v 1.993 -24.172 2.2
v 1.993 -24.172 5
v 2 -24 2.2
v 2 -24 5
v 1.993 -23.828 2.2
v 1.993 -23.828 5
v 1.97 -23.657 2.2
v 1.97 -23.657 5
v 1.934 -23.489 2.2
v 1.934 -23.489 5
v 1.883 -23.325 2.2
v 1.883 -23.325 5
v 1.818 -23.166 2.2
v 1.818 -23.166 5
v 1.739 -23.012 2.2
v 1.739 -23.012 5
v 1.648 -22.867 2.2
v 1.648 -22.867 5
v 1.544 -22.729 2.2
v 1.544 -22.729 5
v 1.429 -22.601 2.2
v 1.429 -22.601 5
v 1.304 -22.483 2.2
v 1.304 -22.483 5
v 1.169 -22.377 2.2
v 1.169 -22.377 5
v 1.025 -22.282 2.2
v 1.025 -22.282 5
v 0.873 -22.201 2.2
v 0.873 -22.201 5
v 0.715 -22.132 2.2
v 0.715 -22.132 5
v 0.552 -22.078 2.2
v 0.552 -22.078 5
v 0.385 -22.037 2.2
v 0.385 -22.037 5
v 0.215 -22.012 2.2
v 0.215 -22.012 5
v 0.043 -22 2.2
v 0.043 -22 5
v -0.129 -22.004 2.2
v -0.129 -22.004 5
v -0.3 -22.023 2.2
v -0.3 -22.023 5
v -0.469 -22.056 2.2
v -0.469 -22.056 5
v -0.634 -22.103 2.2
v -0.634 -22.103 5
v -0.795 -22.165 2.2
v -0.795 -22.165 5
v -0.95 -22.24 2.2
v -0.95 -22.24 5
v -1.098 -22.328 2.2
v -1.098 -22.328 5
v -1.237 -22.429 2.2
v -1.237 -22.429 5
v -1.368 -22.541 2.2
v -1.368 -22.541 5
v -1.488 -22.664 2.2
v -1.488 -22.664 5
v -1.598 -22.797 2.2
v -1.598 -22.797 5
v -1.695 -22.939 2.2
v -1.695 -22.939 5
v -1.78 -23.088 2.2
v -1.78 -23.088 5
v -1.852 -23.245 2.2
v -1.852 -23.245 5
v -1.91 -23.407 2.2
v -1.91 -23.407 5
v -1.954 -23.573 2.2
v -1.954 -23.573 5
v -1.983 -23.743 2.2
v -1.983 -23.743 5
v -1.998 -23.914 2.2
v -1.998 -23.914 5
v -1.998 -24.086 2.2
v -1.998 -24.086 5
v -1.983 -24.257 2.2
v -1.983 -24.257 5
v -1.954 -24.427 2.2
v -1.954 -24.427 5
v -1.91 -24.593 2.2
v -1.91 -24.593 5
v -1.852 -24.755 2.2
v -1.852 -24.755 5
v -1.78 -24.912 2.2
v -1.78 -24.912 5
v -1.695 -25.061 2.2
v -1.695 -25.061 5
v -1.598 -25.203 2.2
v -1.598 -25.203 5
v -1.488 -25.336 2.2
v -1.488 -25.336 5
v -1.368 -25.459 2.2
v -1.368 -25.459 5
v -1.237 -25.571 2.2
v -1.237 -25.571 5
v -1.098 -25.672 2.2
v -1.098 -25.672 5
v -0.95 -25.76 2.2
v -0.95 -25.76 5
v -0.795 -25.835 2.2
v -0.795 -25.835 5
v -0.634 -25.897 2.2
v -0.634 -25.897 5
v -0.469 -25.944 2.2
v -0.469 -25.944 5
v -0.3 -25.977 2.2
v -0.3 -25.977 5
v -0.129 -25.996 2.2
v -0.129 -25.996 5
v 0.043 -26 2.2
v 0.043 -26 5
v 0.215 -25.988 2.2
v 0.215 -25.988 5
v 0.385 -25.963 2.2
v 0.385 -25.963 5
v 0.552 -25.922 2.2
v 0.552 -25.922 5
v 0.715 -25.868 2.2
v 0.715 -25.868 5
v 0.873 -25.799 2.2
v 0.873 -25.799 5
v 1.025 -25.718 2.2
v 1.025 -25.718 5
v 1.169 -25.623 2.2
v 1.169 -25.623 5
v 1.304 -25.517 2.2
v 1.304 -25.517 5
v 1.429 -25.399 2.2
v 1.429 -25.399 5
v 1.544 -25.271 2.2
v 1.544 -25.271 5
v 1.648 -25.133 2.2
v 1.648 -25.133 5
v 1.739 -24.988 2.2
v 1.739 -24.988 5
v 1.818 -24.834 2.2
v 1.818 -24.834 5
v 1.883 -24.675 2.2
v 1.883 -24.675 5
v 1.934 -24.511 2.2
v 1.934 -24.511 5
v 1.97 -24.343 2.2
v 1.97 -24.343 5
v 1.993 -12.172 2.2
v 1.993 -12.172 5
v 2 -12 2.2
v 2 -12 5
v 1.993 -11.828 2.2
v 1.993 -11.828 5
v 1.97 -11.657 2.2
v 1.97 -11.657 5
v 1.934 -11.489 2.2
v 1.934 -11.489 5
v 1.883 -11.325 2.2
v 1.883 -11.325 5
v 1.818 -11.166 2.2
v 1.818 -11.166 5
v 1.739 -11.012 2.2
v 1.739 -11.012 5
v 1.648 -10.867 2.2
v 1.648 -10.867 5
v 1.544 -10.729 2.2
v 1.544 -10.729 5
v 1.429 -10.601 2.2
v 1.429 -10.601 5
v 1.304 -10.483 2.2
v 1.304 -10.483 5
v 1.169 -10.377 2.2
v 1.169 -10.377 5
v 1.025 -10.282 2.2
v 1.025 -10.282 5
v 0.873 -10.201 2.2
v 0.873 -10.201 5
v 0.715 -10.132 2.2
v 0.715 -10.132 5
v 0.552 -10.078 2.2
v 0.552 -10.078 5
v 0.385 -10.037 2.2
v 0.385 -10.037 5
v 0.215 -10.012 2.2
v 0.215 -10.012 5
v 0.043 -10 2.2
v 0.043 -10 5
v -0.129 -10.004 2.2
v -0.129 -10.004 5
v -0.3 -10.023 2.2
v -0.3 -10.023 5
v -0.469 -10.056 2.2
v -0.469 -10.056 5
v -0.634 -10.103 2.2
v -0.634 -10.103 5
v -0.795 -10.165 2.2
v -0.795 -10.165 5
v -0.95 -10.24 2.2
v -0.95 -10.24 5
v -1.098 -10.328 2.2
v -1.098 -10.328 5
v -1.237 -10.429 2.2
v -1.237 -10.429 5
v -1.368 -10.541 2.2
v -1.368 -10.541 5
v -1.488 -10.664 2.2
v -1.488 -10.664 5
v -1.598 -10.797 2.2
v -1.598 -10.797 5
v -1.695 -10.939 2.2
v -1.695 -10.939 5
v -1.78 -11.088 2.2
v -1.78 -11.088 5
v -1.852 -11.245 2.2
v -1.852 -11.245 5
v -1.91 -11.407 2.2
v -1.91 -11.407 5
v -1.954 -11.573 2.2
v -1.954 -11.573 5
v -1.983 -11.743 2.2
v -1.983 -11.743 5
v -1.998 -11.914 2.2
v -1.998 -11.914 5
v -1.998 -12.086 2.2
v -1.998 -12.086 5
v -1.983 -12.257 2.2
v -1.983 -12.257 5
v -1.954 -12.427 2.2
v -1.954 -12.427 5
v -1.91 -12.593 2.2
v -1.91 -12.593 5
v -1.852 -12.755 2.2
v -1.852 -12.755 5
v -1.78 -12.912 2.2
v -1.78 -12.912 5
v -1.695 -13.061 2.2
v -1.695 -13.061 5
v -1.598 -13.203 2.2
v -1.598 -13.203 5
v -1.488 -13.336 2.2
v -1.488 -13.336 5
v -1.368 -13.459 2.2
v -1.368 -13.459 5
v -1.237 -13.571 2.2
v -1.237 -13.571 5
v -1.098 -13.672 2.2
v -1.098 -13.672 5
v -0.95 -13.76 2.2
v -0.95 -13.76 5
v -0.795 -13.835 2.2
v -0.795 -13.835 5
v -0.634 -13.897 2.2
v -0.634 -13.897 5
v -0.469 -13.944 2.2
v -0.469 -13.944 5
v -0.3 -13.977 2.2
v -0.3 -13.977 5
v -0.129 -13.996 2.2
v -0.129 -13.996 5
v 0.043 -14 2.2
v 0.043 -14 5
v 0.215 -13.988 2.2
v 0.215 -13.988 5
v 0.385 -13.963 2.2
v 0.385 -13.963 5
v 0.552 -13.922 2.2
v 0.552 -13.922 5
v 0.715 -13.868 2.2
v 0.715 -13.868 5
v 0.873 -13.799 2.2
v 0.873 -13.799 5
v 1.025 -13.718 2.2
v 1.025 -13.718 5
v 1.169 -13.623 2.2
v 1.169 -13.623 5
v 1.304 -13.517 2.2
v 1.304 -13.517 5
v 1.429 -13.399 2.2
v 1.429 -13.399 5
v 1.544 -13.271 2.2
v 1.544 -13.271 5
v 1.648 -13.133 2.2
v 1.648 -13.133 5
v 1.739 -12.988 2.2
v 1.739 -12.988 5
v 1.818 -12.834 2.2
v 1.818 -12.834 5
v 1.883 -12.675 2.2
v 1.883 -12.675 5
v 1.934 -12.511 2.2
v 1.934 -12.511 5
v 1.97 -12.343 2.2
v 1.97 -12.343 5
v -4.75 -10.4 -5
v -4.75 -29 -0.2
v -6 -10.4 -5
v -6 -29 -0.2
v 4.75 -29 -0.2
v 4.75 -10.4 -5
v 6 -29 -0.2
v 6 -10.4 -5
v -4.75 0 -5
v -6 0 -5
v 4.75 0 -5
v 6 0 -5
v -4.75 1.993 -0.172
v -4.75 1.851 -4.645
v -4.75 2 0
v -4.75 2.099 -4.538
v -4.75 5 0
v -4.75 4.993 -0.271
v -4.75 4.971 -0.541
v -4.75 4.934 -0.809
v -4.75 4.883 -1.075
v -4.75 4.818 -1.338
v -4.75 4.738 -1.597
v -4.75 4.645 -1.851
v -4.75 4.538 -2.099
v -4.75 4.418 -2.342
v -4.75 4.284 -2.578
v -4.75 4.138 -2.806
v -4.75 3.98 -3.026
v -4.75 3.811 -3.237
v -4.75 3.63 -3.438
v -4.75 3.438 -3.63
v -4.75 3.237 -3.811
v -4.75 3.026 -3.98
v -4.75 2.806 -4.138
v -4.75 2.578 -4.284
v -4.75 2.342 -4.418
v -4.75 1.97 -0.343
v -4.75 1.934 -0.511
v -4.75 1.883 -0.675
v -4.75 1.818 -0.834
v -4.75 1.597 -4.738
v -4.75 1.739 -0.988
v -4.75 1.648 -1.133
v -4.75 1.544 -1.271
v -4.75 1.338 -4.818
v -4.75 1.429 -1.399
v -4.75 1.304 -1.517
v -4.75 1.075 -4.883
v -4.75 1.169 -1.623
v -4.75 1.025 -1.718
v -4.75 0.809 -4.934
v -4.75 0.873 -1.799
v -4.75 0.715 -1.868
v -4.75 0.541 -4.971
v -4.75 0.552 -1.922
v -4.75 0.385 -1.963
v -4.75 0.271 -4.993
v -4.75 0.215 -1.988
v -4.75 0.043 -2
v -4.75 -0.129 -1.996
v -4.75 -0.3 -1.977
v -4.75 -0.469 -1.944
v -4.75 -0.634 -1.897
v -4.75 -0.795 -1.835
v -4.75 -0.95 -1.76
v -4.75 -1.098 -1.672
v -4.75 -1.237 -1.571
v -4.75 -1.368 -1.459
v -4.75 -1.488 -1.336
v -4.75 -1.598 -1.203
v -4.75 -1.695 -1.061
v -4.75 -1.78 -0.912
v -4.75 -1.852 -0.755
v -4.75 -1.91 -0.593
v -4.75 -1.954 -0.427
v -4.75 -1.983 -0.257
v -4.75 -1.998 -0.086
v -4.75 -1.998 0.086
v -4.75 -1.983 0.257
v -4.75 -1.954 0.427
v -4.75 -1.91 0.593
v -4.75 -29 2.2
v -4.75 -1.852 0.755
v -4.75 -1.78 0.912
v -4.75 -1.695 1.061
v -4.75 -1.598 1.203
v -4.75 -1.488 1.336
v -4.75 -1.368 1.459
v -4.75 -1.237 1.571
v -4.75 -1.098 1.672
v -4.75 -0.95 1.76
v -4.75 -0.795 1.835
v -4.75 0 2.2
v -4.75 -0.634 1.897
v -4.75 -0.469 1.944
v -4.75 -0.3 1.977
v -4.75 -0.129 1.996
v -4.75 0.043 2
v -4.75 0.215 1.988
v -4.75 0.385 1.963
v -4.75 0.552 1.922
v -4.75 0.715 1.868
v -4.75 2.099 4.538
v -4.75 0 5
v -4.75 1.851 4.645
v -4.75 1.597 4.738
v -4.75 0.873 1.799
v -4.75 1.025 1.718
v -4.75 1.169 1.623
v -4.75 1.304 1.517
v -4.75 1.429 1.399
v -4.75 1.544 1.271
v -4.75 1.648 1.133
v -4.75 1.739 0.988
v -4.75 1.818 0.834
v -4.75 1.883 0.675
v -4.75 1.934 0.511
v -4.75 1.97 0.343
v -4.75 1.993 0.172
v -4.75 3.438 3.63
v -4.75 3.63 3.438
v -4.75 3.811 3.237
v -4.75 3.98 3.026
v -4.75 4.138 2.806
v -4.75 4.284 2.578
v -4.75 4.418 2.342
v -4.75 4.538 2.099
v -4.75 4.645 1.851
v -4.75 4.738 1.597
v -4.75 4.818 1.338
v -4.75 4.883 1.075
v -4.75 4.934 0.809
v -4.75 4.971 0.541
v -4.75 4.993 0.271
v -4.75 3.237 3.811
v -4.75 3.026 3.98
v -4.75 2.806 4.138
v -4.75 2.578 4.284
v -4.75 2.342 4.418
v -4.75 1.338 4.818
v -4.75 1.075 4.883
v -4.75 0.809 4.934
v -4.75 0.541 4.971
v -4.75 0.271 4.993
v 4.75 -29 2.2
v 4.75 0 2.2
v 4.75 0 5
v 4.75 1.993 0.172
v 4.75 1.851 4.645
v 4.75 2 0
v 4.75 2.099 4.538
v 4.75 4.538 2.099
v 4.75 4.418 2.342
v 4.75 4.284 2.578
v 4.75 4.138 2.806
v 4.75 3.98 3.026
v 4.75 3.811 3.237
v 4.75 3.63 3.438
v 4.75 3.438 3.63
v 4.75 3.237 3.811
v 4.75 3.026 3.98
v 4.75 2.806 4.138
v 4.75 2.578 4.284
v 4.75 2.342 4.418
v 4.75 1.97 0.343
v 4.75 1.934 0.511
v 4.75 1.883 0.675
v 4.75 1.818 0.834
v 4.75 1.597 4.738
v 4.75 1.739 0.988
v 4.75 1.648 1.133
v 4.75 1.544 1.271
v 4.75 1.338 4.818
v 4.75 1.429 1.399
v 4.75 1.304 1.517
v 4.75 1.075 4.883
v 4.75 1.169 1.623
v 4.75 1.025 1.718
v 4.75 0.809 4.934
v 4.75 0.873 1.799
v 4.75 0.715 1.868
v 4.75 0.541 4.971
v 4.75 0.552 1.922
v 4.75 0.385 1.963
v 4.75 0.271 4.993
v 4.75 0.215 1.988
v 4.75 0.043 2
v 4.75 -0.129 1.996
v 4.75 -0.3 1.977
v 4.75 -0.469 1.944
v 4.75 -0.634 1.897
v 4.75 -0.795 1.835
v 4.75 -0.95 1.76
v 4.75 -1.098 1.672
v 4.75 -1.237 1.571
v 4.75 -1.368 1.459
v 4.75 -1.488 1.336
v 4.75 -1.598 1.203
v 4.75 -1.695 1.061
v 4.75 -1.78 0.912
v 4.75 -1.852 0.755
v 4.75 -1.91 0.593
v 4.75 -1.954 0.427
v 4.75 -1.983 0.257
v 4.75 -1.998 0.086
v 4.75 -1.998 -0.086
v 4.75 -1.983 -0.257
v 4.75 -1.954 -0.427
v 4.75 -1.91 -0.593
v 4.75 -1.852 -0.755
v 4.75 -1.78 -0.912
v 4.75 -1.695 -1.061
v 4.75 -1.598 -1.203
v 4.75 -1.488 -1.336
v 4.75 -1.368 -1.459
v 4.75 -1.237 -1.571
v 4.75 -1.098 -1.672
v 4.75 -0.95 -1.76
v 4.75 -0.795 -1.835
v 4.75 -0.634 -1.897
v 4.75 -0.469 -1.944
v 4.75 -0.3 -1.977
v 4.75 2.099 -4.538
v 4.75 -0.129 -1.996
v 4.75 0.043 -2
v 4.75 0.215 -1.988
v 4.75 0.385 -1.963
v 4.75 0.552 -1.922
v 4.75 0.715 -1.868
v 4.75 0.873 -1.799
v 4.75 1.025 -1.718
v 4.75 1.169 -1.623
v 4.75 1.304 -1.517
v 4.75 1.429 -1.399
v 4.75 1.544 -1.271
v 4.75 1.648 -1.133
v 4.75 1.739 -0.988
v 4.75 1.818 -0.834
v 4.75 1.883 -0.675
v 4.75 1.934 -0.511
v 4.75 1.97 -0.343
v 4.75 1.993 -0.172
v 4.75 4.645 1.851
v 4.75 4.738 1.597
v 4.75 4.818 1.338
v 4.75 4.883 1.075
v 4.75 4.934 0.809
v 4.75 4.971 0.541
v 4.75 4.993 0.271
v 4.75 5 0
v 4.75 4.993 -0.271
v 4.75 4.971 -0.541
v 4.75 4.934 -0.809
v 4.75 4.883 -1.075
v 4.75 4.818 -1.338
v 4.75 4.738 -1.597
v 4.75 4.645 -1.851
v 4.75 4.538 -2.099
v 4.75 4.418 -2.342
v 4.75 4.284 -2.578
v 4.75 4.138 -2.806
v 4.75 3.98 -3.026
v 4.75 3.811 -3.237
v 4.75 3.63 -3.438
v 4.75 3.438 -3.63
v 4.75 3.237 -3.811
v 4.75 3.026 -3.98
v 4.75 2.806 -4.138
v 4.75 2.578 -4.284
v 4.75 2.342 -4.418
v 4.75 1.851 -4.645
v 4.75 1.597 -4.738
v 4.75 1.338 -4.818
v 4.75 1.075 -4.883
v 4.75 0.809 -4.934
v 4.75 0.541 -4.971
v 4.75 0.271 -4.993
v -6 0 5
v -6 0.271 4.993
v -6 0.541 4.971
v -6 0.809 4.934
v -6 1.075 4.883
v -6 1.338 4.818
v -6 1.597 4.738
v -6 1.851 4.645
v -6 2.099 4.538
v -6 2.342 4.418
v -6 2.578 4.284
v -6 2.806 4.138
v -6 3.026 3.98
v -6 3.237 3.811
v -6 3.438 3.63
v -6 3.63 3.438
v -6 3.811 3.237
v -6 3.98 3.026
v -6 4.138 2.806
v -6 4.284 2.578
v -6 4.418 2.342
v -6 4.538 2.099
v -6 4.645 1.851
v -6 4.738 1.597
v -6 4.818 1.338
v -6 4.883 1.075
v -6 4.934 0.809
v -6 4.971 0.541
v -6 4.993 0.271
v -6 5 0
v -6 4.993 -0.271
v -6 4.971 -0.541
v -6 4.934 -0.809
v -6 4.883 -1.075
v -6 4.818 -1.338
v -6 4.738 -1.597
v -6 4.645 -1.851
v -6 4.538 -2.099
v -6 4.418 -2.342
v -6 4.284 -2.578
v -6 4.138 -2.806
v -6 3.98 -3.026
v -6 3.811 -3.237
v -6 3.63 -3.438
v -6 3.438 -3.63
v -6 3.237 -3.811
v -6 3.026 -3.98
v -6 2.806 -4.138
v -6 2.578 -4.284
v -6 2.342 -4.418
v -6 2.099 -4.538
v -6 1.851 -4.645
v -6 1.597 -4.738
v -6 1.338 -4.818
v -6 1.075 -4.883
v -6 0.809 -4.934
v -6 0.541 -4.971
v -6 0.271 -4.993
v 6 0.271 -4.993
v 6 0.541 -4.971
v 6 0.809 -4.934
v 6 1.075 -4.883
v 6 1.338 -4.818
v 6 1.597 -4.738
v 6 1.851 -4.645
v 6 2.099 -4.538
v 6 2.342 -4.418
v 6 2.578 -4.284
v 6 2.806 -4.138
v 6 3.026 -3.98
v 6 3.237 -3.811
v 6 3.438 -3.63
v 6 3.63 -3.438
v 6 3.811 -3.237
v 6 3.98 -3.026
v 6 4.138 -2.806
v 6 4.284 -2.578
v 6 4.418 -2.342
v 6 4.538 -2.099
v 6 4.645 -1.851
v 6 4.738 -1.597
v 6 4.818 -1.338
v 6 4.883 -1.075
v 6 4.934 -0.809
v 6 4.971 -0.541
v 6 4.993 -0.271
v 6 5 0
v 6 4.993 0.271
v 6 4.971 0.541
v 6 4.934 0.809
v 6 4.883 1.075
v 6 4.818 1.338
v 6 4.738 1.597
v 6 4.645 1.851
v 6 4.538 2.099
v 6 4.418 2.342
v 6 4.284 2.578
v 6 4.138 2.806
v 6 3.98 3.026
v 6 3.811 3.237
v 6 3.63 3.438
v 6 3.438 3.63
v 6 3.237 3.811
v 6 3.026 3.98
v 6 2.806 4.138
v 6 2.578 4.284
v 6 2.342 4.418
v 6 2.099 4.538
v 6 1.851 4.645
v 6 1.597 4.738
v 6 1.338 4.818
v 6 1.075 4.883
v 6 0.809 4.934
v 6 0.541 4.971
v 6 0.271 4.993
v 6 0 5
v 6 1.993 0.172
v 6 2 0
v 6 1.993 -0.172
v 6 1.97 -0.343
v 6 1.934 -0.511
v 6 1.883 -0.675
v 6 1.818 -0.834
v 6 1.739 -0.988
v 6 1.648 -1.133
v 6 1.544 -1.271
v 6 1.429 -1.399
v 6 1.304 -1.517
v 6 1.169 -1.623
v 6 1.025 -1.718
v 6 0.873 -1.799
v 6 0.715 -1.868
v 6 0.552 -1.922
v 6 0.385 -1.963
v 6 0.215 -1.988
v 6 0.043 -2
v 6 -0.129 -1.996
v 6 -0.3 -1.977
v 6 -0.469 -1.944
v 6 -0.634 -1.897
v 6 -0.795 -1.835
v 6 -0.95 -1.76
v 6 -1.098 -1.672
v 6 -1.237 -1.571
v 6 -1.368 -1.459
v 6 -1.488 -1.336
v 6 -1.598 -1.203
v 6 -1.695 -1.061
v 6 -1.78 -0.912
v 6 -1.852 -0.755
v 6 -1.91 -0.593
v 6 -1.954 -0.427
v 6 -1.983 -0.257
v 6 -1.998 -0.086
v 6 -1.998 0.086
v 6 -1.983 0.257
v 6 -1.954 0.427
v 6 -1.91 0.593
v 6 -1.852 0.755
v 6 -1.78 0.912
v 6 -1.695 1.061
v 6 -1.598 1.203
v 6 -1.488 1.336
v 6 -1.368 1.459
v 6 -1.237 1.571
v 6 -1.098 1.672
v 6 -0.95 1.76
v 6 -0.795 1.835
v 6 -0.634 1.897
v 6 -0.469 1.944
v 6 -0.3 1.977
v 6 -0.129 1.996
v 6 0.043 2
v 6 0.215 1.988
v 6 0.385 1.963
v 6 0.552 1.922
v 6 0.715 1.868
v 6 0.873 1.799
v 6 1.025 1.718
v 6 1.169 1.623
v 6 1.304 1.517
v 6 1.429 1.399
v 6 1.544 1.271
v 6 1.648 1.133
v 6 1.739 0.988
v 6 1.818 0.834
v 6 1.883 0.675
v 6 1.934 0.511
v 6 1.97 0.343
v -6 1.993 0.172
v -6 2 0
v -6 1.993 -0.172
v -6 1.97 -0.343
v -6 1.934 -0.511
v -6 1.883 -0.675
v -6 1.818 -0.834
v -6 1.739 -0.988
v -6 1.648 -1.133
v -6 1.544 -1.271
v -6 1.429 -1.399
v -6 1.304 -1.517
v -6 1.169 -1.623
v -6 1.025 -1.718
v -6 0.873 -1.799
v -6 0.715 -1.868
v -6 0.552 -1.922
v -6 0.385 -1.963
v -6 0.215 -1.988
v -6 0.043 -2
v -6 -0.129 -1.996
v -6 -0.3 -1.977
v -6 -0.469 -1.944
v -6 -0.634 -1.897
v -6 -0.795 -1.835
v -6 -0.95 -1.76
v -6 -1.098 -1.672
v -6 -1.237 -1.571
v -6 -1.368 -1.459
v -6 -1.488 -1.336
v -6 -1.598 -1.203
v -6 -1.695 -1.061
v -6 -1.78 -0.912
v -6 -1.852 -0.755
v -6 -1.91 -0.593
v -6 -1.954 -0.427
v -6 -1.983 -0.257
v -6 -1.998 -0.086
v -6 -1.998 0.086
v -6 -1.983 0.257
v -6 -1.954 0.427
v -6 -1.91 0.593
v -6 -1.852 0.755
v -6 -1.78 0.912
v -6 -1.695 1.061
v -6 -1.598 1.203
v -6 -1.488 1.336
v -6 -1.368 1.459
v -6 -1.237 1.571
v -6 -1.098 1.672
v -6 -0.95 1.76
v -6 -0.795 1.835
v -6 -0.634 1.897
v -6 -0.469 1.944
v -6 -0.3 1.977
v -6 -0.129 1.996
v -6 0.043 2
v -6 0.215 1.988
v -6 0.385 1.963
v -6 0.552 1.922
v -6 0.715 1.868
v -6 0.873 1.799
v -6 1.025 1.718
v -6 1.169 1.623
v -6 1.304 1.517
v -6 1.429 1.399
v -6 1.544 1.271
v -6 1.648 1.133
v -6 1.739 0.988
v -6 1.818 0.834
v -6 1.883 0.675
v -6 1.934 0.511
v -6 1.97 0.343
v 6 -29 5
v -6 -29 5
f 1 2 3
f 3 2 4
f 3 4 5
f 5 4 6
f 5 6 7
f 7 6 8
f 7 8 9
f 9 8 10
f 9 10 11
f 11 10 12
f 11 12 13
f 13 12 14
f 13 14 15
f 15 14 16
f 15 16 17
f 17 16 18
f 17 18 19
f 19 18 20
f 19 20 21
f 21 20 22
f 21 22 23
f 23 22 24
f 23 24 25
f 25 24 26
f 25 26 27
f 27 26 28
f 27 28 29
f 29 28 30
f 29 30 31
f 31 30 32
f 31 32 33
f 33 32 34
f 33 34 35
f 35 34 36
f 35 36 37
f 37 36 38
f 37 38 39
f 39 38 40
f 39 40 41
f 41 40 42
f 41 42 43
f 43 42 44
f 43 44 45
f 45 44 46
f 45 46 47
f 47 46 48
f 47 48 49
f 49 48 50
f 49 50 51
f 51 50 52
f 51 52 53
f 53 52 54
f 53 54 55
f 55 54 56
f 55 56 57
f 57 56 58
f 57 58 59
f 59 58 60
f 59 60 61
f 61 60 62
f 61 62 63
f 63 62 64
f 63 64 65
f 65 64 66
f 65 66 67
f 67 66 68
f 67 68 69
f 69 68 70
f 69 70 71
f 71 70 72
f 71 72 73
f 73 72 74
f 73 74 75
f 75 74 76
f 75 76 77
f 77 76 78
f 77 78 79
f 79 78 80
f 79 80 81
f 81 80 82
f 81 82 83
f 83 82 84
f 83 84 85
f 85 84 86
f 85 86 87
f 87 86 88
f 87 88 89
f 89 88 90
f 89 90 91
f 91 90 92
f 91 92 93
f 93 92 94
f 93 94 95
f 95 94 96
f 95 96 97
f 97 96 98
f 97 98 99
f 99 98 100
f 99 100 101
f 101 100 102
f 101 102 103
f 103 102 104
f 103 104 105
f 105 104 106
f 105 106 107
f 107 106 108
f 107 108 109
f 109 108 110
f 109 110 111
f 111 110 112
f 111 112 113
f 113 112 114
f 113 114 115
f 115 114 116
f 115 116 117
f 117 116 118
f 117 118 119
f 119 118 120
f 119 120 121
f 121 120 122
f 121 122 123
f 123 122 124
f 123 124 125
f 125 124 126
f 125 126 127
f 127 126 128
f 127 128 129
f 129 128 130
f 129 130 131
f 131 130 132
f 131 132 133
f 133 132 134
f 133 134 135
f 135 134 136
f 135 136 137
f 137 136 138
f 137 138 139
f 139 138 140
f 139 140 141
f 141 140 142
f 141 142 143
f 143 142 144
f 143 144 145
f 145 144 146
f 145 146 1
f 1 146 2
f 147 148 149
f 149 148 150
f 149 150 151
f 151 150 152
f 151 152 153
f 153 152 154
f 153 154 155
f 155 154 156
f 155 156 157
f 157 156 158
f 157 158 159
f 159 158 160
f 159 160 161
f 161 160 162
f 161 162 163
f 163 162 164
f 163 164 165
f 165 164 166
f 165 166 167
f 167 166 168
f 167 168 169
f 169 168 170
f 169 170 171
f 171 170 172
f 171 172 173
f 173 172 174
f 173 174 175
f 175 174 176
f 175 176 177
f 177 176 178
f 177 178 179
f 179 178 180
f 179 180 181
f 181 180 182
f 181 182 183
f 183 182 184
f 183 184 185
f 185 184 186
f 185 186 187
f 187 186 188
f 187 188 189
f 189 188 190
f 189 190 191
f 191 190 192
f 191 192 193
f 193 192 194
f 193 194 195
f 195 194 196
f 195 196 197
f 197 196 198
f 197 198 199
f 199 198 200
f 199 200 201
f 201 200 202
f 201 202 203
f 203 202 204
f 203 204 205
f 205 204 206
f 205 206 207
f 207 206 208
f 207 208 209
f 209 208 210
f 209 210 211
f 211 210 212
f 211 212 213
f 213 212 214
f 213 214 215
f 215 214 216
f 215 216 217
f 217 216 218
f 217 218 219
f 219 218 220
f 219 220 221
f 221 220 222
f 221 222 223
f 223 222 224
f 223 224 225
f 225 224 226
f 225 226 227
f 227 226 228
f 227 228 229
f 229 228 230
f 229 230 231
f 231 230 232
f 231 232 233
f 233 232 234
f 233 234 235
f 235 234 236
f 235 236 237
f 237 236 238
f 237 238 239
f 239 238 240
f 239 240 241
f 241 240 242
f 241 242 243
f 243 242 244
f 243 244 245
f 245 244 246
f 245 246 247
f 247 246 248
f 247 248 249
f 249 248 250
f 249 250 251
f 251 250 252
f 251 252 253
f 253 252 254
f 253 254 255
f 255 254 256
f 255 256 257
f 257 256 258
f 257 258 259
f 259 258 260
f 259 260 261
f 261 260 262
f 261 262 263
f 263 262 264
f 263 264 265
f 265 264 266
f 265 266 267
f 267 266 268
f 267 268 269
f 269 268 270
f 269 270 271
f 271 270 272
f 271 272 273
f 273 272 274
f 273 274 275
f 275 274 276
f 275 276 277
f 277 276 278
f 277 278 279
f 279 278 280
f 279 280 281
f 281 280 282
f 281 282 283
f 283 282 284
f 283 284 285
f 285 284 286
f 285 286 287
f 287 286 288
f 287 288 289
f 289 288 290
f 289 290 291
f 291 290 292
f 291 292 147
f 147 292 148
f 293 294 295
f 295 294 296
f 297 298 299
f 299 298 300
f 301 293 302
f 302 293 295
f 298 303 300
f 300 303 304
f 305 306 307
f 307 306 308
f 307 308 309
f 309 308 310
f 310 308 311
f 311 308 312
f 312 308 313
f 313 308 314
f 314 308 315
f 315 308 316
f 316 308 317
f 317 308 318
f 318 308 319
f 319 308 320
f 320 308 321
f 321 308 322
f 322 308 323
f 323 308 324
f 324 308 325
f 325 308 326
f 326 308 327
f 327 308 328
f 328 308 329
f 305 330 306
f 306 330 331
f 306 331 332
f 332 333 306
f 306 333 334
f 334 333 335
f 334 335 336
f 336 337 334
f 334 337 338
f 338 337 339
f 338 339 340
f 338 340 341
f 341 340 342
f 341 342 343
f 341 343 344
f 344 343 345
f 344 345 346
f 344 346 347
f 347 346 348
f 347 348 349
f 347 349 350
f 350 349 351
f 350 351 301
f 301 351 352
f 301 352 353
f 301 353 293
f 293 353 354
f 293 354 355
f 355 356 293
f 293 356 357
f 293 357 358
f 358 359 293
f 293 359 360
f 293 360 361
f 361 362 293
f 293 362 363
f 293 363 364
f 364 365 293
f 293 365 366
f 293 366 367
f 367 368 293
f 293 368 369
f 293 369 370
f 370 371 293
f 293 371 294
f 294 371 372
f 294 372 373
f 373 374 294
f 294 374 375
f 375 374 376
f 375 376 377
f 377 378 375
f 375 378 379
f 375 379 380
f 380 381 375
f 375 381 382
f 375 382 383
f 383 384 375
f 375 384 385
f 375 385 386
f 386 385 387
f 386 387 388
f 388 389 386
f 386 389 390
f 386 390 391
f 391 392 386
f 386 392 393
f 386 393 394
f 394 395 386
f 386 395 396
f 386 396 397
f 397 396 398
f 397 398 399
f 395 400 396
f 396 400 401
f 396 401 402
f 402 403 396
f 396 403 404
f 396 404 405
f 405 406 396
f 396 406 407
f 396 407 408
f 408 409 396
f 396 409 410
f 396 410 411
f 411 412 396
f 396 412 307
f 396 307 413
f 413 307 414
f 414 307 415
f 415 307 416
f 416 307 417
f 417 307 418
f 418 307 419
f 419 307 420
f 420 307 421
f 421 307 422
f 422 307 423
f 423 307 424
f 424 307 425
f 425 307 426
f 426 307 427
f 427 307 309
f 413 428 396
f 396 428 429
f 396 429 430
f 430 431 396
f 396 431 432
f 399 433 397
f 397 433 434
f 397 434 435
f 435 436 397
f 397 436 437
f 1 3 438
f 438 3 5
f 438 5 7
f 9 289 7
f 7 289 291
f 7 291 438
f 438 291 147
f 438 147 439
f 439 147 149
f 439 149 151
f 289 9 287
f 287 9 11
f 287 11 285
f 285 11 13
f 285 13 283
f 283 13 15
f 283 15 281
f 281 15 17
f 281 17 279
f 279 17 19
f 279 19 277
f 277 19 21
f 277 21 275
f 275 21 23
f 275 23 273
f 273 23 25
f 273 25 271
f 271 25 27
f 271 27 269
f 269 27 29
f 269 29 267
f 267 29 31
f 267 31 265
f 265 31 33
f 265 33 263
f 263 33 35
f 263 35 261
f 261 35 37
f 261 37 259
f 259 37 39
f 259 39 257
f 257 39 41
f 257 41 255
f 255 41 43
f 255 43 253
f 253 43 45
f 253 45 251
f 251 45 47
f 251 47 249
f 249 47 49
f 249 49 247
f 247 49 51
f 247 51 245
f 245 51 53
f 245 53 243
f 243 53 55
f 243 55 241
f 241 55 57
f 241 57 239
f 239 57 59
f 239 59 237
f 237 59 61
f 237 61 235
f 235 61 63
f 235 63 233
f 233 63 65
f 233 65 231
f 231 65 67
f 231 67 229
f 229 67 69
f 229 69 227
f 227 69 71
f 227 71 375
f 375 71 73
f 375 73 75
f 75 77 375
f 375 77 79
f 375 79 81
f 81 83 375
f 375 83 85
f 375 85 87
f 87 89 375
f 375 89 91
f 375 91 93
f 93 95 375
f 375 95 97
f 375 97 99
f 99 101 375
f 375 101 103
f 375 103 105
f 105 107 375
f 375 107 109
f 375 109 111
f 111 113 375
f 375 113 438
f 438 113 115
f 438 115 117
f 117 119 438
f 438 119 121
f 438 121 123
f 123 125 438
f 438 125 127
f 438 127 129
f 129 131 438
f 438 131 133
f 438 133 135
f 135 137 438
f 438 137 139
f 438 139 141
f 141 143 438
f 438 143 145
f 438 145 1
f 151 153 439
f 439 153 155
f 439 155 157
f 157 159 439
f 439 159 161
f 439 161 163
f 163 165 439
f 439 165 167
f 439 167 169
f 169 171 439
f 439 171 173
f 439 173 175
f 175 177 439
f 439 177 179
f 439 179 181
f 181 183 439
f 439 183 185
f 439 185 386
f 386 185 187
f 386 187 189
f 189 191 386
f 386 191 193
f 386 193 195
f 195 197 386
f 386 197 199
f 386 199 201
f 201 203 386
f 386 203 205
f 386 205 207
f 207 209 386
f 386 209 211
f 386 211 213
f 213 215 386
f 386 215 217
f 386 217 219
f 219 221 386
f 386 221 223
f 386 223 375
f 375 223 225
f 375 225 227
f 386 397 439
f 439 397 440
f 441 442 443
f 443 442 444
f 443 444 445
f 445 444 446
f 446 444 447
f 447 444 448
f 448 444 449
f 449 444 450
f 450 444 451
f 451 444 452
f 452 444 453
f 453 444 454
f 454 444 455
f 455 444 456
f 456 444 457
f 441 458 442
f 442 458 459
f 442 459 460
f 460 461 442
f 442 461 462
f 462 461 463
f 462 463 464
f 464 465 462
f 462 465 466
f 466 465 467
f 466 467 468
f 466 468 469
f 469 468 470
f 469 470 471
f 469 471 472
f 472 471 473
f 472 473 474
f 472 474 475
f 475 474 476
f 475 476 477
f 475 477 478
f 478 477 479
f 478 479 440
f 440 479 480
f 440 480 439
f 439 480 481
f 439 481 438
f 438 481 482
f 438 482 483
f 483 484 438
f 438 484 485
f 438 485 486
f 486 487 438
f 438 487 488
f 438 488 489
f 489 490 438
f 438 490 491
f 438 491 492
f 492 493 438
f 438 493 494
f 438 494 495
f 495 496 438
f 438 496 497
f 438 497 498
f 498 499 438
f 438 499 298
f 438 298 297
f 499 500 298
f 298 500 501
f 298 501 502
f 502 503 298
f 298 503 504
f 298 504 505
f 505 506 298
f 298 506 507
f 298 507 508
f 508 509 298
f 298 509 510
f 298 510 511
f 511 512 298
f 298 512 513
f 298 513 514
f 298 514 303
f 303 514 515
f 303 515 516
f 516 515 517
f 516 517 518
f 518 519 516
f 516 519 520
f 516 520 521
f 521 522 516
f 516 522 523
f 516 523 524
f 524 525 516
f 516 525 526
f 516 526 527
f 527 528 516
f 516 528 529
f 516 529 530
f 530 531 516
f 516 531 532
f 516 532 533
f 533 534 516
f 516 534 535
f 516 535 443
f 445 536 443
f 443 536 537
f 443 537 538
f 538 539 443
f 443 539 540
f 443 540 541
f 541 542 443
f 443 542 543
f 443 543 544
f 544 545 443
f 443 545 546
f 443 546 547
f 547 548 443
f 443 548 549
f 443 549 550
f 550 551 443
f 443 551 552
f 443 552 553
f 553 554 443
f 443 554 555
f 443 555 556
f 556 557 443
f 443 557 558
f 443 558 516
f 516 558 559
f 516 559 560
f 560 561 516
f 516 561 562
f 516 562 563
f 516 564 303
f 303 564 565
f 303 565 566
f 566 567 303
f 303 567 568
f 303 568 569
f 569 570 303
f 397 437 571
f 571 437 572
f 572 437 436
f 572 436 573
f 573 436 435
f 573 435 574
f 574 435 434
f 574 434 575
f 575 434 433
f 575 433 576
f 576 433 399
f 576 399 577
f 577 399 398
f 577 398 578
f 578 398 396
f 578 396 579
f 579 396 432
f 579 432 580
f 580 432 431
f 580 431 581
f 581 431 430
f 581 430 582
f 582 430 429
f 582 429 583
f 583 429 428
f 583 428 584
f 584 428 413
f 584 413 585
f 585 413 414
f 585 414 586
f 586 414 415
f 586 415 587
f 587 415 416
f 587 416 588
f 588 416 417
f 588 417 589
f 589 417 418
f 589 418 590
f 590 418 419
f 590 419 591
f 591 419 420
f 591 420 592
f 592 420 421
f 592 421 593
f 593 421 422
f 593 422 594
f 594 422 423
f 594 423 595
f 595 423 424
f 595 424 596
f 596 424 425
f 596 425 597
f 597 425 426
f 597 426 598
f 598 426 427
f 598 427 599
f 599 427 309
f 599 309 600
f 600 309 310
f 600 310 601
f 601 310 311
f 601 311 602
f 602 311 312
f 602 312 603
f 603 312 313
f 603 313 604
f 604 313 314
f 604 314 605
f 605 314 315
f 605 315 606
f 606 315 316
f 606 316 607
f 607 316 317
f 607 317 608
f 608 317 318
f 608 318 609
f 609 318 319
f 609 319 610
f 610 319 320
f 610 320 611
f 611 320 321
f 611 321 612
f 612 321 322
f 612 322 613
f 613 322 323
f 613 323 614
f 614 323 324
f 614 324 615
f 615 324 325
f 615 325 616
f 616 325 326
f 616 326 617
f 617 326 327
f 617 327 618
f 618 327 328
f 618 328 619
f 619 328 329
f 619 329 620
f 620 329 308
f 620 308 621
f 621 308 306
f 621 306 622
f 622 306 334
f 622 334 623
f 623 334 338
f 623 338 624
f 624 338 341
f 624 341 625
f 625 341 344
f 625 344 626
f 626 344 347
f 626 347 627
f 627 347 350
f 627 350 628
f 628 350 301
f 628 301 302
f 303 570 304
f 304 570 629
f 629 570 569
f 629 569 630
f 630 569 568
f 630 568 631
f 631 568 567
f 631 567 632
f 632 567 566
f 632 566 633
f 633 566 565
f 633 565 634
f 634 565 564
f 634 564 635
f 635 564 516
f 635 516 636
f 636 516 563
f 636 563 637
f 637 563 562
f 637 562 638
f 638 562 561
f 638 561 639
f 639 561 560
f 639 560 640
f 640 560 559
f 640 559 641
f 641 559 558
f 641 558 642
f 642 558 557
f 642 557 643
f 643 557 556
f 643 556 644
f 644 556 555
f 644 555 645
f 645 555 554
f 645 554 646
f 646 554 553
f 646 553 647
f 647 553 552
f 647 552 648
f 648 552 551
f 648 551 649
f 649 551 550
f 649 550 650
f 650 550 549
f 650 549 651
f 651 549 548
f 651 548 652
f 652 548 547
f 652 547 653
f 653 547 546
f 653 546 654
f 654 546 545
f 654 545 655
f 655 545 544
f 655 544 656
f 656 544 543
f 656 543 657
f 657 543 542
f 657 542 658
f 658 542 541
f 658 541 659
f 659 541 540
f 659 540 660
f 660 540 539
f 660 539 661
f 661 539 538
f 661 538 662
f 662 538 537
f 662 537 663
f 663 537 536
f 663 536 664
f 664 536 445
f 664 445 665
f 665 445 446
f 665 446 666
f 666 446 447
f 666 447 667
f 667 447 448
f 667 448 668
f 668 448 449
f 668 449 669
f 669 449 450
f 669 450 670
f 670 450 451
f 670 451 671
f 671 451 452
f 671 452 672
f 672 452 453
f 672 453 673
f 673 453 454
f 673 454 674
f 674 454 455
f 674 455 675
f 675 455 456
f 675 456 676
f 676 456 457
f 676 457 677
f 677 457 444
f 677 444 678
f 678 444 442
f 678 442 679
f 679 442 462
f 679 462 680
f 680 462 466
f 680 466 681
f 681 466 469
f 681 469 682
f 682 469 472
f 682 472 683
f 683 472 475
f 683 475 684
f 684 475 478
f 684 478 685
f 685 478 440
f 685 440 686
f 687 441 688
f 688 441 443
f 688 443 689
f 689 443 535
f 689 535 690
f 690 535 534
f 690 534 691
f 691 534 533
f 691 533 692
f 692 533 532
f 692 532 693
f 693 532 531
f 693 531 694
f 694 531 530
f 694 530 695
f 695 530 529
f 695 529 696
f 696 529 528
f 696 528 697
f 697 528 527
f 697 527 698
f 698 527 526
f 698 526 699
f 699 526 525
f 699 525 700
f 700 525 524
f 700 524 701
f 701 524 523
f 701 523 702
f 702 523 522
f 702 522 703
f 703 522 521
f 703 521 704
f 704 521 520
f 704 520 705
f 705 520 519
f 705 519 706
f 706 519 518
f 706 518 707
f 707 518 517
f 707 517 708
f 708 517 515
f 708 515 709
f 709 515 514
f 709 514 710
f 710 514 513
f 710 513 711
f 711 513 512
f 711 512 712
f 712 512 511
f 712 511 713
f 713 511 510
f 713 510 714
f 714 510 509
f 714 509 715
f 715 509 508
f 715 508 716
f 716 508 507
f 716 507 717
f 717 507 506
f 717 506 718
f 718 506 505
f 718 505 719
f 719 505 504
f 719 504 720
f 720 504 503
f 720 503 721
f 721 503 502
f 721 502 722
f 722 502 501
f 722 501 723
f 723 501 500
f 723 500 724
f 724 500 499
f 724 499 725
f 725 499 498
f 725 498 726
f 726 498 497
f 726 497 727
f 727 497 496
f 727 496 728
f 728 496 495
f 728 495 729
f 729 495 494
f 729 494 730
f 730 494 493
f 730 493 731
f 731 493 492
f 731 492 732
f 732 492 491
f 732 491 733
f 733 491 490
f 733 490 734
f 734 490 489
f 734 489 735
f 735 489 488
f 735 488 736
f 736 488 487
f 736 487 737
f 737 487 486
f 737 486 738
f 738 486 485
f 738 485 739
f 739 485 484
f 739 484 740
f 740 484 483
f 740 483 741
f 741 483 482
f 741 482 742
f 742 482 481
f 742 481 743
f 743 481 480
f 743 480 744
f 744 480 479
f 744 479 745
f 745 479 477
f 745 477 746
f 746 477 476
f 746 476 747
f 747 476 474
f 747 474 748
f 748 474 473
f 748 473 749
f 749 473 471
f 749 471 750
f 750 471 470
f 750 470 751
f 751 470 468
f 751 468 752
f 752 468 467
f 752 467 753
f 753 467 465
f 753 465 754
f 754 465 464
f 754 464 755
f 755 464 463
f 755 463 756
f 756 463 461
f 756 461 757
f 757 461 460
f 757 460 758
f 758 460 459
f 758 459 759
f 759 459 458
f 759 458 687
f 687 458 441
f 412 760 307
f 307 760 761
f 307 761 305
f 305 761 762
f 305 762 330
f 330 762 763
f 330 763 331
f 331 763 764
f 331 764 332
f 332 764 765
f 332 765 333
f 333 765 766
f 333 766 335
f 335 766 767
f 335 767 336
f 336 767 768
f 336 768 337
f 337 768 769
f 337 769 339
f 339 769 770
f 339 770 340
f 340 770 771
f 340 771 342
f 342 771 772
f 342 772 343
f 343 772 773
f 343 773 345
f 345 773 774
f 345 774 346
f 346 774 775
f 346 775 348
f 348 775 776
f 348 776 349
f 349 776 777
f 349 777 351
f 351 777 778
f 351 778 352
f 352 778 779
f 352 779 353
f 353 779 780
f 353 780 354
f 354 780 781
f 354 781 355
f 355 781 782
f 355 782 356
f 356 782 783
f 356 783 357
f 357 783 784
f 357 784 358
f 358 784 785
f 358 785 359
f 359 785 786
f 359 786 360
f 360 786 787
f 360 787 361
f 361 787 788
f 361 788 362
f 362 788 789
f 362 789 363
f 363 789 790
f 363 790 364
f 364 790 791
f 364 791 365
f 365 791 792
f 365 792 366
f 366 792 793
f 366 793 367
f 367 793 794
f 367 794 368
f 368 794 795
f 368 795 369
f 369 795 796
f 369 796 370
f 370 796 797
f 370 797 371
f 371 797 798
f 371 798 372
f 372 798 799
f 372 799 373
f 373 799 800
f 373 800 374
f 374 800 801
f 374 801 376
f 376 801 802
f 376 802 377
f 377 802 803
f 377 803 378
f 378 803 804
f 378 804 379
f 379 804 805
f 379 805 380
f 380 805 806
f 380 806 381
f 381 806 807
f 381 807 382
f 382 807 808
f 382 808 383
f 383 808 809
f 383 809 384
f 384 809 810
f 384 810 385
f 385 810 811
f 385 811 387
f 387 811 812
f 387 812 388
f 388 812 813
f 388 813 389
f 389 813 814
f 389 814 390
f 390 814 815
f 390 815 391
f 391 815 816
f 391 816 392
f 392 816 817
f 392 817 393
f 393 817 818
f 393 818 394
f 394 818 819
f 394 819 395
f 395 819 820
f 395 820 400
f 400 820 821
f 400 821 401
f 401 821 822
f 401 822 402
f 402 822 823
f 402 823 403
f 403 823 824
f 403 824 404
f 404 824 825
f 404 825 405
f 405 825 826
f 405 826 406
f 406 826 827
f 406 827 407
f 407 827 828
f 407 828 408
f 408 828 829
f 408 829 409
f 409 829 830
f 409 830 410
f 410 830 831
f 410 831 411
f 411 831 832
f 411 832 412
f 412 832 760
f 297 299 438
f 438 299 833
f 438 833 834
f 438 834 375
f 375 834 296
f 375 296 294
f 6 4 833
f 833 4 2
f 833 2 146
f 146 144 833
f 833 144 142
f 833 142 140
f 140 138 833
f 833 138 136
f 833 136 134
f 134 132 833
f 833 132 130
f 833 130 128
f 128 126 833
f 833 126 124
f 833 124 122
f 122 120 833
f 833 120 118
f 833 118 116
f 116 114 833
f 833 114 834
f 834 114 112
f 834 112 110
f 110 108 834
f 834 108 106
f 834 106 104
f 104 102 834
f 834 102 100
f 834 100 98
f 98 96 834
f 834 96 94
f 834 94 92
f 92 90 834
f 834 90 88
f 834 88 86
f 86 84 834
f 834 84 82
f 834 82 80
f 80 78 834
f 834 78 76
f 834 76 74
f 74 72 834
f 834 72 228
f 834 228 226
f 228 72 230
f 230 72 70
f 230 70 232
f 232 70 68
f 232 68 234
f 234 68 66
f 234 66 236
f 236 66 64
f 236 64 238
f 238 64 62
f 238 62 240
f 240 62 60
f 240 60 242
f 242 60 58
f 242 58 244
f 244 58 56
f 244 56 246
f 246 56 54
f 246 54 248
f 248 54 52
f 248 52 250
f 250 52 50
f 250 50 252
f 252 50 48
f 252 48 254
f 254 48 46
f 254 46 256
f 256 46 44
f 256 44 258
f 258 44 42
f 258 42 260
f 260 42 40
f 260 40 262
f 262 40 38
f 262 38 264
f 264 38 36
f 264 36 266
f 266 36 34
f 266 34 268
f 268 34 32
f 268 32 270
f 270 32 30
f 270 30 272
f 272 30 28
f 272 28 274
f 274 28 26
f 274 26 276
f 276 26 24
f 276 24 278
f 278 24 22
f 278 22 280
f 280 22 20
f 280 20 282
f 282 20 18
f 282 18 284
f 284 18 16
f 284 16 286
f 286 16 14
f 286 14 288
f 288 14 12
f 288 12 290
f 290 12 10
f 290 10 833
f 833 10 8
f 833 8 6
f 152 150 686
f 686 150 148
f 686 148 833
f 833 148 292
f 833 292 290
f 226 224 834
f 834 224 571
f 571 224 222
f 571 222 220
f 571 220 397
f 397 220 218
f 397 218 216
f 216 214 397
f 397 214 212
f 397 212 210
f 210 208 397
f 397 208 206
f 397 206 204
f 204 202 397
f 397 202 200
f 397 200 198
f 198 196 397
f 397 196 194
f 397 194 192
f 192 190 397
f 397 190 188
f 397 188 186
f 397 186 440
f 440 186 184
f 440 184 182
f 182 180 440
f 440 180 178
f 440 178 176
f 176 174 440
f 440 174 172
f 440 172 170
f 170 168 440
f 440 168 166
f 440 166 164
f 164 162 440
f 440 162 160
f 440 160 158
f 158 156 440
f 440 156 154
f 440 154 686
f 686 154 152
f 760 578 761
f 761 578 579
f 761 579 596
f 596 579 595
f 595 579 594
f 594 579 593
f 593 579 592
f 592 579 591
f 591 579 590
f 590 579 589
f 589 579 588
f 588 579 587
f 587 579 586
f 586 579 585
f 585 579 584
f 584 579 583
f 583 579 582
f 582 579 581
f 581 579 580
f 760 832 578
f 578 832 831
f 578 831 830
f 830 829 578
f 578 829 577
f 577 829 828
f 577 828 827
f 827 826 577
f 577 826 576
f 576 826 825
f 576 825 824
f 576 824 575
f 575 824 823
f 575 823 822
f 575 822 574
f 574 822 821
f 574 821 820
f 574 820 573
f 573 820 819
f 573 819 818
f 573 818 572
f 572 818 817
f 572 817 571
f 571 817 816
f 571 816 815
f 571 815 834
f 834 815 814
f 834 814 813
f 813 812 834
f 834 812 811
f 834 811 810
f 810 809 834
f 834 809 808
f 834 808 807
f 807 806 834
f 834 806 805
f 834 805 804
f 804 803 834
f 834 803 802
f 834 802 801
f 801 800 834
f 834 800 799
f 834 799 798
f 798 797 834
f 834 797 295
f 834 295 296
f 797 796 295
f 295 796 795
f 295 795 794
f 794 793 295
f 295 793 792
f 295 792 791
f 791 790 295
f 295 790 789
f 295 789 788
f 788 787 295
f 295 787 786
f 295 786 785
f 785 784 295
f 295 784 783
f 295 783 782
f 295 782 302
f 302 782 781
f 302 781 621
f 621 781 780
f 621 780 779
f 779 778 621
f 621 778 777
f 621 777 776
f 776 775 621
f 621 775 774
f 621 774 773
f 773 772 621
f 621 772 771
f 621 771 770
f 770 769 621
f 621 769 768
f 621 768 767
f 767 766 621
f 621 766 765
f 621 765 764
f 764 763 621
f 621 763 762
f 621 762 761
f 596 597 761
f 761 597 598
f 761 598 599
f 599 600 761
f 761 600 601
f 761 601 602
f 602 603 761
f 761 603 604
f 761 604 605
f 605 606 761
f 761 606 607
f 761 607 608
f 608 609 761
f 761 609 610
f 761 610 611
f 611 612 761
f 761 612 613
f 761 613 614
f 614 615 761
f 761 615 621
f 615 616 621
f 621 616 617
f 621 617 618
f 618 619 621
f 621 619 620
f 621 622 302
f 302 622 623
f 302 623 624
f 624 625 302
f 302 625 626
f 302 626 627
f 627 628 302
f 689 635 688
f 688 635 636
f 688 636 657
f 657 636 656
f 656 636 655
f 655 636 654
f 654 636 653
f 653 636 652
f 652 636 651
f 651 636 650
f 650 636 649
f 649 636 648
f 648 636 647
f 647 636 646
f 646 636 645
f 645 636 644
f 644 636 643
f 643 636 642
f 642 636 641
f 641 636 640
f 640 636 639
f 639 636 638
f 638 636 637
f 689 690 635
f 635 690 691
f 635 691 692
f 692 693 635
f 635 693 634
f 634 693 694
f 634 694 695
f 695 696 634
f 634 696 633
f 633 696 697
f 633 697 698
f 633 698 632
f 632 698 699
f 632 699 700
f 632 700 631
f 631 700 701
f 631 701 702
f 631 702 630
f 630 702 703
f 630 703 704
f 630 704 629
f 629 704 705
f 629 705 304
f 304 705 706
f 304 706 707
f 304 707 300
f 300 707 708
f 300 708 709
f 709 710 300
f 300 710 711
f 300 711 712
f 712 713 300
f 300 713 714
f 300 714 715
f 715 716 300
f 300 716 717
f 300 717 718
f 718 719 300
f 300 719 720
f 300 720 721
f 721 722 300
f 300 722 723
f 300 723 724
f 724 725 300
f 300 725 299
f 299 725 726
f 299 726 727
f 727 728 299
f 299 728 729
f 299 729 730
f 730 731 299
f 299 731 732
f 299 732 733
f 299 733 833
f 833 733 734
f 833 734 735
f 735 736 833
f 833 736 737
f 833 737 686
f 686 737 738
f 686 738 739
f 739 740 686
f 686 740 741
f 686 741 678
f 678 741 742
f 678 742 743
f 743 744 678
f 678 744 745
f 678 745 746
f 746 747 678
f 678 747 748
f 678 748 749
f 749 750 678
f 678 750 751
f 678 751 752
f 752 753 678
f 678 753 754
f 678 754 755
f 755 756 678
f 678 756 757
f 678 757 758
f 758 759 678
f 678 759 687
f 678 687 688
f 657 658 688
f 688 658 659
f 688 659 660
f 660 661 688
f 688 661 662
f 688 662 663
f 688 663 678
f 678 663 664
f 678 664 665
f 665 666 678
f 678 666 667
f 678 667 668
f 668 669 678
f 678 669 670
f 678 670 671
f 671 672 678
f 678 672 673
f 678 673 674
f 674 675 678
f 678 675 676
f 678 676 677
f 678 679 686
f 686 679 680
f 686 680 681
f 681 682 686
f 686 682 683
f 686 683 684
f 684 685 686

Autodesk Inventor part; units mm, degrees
ref_plane "YZ Plane" through (0, 0, 0) normal (1, 0, 0) x (0, 1, 0)
ref_plane "XZ Plane" through (0, 0, 0) normal (0, 1, 0) x (-1, 0, 0)
ref_plane "XY Plane" through (0, 0, 0) normal (0, 0, 1) x (1, 0, 0)
sketch "Эскиз1" plane through (0, 0, 0) normal (1, 0, 0) x (0, 1, 0)
  circle A0 centre (0, 0) radius 2
  arc A1 (-4.49, 2.2) -> (0, 5) centre (0, 0) ccw
  line L0 (0, 5) -> (-29, 5)
  line L1 (-29, 5) -> (-29, -0.2)
  line L2 (-29, -0.2) -> (-10.4, -5)
  line L3 (-10.4, -5) -> (0, -5)
  line L4 (-4.49, 2.2) -> (-29, 2.2)
  line L5 (-4.49, 5) -> (0, 5)
  line L6 (-4.49, 5) -> (-29, 5)
  line L7 (-10.4, -5) -> (0, -5)
  line L8 (-4.49, 2.2) -> (0, 2.2)
  line L9 (0, 2.2) -> (0, 5)
  line L10 (0, 5) -> (-4.49, 5)
  dimension "d0" = 4
  dimension "d1" = 10
  dimension "d2" = 34
  dimension "d3" = 5.2
  dimension "d4" = 18.6
  dimension "d5" = 2.8
  dimension "d6" = 10
extrude "Выдавливание1" add sketch "Эскиз1" along normal mid plane 12
extrude "Выдавливание2" cut sketch "Эскиз1" along normal mid plane 9.5 contours L8 L9 A1
extrude "Выдавливание3" cut sketch "Эскиз1" along normal mid plane 9.5 contours A1 L3 L2 L1 L4
sketch "Эскиз2" plane through (-6, -29, 5) normal (0, 0, 1) x (1, 0, 0)
  line L0 (6, 29) -> (6, 0) construction
  line L1 (0, 0) -> (12, 0) construction
  circle A0 centre (6, 5) radius 2
  circle A1 centre (6, 17) radius 2
  dimension "d13" = 4
  dimension "d14" = 4
  dimension "d15" = 12
  dimension "d16" = 5
extrude "Выдавливание4" cut sketch "Эскиз2" against normal blind 9.5
properties part number "крепленеи кабеля"
